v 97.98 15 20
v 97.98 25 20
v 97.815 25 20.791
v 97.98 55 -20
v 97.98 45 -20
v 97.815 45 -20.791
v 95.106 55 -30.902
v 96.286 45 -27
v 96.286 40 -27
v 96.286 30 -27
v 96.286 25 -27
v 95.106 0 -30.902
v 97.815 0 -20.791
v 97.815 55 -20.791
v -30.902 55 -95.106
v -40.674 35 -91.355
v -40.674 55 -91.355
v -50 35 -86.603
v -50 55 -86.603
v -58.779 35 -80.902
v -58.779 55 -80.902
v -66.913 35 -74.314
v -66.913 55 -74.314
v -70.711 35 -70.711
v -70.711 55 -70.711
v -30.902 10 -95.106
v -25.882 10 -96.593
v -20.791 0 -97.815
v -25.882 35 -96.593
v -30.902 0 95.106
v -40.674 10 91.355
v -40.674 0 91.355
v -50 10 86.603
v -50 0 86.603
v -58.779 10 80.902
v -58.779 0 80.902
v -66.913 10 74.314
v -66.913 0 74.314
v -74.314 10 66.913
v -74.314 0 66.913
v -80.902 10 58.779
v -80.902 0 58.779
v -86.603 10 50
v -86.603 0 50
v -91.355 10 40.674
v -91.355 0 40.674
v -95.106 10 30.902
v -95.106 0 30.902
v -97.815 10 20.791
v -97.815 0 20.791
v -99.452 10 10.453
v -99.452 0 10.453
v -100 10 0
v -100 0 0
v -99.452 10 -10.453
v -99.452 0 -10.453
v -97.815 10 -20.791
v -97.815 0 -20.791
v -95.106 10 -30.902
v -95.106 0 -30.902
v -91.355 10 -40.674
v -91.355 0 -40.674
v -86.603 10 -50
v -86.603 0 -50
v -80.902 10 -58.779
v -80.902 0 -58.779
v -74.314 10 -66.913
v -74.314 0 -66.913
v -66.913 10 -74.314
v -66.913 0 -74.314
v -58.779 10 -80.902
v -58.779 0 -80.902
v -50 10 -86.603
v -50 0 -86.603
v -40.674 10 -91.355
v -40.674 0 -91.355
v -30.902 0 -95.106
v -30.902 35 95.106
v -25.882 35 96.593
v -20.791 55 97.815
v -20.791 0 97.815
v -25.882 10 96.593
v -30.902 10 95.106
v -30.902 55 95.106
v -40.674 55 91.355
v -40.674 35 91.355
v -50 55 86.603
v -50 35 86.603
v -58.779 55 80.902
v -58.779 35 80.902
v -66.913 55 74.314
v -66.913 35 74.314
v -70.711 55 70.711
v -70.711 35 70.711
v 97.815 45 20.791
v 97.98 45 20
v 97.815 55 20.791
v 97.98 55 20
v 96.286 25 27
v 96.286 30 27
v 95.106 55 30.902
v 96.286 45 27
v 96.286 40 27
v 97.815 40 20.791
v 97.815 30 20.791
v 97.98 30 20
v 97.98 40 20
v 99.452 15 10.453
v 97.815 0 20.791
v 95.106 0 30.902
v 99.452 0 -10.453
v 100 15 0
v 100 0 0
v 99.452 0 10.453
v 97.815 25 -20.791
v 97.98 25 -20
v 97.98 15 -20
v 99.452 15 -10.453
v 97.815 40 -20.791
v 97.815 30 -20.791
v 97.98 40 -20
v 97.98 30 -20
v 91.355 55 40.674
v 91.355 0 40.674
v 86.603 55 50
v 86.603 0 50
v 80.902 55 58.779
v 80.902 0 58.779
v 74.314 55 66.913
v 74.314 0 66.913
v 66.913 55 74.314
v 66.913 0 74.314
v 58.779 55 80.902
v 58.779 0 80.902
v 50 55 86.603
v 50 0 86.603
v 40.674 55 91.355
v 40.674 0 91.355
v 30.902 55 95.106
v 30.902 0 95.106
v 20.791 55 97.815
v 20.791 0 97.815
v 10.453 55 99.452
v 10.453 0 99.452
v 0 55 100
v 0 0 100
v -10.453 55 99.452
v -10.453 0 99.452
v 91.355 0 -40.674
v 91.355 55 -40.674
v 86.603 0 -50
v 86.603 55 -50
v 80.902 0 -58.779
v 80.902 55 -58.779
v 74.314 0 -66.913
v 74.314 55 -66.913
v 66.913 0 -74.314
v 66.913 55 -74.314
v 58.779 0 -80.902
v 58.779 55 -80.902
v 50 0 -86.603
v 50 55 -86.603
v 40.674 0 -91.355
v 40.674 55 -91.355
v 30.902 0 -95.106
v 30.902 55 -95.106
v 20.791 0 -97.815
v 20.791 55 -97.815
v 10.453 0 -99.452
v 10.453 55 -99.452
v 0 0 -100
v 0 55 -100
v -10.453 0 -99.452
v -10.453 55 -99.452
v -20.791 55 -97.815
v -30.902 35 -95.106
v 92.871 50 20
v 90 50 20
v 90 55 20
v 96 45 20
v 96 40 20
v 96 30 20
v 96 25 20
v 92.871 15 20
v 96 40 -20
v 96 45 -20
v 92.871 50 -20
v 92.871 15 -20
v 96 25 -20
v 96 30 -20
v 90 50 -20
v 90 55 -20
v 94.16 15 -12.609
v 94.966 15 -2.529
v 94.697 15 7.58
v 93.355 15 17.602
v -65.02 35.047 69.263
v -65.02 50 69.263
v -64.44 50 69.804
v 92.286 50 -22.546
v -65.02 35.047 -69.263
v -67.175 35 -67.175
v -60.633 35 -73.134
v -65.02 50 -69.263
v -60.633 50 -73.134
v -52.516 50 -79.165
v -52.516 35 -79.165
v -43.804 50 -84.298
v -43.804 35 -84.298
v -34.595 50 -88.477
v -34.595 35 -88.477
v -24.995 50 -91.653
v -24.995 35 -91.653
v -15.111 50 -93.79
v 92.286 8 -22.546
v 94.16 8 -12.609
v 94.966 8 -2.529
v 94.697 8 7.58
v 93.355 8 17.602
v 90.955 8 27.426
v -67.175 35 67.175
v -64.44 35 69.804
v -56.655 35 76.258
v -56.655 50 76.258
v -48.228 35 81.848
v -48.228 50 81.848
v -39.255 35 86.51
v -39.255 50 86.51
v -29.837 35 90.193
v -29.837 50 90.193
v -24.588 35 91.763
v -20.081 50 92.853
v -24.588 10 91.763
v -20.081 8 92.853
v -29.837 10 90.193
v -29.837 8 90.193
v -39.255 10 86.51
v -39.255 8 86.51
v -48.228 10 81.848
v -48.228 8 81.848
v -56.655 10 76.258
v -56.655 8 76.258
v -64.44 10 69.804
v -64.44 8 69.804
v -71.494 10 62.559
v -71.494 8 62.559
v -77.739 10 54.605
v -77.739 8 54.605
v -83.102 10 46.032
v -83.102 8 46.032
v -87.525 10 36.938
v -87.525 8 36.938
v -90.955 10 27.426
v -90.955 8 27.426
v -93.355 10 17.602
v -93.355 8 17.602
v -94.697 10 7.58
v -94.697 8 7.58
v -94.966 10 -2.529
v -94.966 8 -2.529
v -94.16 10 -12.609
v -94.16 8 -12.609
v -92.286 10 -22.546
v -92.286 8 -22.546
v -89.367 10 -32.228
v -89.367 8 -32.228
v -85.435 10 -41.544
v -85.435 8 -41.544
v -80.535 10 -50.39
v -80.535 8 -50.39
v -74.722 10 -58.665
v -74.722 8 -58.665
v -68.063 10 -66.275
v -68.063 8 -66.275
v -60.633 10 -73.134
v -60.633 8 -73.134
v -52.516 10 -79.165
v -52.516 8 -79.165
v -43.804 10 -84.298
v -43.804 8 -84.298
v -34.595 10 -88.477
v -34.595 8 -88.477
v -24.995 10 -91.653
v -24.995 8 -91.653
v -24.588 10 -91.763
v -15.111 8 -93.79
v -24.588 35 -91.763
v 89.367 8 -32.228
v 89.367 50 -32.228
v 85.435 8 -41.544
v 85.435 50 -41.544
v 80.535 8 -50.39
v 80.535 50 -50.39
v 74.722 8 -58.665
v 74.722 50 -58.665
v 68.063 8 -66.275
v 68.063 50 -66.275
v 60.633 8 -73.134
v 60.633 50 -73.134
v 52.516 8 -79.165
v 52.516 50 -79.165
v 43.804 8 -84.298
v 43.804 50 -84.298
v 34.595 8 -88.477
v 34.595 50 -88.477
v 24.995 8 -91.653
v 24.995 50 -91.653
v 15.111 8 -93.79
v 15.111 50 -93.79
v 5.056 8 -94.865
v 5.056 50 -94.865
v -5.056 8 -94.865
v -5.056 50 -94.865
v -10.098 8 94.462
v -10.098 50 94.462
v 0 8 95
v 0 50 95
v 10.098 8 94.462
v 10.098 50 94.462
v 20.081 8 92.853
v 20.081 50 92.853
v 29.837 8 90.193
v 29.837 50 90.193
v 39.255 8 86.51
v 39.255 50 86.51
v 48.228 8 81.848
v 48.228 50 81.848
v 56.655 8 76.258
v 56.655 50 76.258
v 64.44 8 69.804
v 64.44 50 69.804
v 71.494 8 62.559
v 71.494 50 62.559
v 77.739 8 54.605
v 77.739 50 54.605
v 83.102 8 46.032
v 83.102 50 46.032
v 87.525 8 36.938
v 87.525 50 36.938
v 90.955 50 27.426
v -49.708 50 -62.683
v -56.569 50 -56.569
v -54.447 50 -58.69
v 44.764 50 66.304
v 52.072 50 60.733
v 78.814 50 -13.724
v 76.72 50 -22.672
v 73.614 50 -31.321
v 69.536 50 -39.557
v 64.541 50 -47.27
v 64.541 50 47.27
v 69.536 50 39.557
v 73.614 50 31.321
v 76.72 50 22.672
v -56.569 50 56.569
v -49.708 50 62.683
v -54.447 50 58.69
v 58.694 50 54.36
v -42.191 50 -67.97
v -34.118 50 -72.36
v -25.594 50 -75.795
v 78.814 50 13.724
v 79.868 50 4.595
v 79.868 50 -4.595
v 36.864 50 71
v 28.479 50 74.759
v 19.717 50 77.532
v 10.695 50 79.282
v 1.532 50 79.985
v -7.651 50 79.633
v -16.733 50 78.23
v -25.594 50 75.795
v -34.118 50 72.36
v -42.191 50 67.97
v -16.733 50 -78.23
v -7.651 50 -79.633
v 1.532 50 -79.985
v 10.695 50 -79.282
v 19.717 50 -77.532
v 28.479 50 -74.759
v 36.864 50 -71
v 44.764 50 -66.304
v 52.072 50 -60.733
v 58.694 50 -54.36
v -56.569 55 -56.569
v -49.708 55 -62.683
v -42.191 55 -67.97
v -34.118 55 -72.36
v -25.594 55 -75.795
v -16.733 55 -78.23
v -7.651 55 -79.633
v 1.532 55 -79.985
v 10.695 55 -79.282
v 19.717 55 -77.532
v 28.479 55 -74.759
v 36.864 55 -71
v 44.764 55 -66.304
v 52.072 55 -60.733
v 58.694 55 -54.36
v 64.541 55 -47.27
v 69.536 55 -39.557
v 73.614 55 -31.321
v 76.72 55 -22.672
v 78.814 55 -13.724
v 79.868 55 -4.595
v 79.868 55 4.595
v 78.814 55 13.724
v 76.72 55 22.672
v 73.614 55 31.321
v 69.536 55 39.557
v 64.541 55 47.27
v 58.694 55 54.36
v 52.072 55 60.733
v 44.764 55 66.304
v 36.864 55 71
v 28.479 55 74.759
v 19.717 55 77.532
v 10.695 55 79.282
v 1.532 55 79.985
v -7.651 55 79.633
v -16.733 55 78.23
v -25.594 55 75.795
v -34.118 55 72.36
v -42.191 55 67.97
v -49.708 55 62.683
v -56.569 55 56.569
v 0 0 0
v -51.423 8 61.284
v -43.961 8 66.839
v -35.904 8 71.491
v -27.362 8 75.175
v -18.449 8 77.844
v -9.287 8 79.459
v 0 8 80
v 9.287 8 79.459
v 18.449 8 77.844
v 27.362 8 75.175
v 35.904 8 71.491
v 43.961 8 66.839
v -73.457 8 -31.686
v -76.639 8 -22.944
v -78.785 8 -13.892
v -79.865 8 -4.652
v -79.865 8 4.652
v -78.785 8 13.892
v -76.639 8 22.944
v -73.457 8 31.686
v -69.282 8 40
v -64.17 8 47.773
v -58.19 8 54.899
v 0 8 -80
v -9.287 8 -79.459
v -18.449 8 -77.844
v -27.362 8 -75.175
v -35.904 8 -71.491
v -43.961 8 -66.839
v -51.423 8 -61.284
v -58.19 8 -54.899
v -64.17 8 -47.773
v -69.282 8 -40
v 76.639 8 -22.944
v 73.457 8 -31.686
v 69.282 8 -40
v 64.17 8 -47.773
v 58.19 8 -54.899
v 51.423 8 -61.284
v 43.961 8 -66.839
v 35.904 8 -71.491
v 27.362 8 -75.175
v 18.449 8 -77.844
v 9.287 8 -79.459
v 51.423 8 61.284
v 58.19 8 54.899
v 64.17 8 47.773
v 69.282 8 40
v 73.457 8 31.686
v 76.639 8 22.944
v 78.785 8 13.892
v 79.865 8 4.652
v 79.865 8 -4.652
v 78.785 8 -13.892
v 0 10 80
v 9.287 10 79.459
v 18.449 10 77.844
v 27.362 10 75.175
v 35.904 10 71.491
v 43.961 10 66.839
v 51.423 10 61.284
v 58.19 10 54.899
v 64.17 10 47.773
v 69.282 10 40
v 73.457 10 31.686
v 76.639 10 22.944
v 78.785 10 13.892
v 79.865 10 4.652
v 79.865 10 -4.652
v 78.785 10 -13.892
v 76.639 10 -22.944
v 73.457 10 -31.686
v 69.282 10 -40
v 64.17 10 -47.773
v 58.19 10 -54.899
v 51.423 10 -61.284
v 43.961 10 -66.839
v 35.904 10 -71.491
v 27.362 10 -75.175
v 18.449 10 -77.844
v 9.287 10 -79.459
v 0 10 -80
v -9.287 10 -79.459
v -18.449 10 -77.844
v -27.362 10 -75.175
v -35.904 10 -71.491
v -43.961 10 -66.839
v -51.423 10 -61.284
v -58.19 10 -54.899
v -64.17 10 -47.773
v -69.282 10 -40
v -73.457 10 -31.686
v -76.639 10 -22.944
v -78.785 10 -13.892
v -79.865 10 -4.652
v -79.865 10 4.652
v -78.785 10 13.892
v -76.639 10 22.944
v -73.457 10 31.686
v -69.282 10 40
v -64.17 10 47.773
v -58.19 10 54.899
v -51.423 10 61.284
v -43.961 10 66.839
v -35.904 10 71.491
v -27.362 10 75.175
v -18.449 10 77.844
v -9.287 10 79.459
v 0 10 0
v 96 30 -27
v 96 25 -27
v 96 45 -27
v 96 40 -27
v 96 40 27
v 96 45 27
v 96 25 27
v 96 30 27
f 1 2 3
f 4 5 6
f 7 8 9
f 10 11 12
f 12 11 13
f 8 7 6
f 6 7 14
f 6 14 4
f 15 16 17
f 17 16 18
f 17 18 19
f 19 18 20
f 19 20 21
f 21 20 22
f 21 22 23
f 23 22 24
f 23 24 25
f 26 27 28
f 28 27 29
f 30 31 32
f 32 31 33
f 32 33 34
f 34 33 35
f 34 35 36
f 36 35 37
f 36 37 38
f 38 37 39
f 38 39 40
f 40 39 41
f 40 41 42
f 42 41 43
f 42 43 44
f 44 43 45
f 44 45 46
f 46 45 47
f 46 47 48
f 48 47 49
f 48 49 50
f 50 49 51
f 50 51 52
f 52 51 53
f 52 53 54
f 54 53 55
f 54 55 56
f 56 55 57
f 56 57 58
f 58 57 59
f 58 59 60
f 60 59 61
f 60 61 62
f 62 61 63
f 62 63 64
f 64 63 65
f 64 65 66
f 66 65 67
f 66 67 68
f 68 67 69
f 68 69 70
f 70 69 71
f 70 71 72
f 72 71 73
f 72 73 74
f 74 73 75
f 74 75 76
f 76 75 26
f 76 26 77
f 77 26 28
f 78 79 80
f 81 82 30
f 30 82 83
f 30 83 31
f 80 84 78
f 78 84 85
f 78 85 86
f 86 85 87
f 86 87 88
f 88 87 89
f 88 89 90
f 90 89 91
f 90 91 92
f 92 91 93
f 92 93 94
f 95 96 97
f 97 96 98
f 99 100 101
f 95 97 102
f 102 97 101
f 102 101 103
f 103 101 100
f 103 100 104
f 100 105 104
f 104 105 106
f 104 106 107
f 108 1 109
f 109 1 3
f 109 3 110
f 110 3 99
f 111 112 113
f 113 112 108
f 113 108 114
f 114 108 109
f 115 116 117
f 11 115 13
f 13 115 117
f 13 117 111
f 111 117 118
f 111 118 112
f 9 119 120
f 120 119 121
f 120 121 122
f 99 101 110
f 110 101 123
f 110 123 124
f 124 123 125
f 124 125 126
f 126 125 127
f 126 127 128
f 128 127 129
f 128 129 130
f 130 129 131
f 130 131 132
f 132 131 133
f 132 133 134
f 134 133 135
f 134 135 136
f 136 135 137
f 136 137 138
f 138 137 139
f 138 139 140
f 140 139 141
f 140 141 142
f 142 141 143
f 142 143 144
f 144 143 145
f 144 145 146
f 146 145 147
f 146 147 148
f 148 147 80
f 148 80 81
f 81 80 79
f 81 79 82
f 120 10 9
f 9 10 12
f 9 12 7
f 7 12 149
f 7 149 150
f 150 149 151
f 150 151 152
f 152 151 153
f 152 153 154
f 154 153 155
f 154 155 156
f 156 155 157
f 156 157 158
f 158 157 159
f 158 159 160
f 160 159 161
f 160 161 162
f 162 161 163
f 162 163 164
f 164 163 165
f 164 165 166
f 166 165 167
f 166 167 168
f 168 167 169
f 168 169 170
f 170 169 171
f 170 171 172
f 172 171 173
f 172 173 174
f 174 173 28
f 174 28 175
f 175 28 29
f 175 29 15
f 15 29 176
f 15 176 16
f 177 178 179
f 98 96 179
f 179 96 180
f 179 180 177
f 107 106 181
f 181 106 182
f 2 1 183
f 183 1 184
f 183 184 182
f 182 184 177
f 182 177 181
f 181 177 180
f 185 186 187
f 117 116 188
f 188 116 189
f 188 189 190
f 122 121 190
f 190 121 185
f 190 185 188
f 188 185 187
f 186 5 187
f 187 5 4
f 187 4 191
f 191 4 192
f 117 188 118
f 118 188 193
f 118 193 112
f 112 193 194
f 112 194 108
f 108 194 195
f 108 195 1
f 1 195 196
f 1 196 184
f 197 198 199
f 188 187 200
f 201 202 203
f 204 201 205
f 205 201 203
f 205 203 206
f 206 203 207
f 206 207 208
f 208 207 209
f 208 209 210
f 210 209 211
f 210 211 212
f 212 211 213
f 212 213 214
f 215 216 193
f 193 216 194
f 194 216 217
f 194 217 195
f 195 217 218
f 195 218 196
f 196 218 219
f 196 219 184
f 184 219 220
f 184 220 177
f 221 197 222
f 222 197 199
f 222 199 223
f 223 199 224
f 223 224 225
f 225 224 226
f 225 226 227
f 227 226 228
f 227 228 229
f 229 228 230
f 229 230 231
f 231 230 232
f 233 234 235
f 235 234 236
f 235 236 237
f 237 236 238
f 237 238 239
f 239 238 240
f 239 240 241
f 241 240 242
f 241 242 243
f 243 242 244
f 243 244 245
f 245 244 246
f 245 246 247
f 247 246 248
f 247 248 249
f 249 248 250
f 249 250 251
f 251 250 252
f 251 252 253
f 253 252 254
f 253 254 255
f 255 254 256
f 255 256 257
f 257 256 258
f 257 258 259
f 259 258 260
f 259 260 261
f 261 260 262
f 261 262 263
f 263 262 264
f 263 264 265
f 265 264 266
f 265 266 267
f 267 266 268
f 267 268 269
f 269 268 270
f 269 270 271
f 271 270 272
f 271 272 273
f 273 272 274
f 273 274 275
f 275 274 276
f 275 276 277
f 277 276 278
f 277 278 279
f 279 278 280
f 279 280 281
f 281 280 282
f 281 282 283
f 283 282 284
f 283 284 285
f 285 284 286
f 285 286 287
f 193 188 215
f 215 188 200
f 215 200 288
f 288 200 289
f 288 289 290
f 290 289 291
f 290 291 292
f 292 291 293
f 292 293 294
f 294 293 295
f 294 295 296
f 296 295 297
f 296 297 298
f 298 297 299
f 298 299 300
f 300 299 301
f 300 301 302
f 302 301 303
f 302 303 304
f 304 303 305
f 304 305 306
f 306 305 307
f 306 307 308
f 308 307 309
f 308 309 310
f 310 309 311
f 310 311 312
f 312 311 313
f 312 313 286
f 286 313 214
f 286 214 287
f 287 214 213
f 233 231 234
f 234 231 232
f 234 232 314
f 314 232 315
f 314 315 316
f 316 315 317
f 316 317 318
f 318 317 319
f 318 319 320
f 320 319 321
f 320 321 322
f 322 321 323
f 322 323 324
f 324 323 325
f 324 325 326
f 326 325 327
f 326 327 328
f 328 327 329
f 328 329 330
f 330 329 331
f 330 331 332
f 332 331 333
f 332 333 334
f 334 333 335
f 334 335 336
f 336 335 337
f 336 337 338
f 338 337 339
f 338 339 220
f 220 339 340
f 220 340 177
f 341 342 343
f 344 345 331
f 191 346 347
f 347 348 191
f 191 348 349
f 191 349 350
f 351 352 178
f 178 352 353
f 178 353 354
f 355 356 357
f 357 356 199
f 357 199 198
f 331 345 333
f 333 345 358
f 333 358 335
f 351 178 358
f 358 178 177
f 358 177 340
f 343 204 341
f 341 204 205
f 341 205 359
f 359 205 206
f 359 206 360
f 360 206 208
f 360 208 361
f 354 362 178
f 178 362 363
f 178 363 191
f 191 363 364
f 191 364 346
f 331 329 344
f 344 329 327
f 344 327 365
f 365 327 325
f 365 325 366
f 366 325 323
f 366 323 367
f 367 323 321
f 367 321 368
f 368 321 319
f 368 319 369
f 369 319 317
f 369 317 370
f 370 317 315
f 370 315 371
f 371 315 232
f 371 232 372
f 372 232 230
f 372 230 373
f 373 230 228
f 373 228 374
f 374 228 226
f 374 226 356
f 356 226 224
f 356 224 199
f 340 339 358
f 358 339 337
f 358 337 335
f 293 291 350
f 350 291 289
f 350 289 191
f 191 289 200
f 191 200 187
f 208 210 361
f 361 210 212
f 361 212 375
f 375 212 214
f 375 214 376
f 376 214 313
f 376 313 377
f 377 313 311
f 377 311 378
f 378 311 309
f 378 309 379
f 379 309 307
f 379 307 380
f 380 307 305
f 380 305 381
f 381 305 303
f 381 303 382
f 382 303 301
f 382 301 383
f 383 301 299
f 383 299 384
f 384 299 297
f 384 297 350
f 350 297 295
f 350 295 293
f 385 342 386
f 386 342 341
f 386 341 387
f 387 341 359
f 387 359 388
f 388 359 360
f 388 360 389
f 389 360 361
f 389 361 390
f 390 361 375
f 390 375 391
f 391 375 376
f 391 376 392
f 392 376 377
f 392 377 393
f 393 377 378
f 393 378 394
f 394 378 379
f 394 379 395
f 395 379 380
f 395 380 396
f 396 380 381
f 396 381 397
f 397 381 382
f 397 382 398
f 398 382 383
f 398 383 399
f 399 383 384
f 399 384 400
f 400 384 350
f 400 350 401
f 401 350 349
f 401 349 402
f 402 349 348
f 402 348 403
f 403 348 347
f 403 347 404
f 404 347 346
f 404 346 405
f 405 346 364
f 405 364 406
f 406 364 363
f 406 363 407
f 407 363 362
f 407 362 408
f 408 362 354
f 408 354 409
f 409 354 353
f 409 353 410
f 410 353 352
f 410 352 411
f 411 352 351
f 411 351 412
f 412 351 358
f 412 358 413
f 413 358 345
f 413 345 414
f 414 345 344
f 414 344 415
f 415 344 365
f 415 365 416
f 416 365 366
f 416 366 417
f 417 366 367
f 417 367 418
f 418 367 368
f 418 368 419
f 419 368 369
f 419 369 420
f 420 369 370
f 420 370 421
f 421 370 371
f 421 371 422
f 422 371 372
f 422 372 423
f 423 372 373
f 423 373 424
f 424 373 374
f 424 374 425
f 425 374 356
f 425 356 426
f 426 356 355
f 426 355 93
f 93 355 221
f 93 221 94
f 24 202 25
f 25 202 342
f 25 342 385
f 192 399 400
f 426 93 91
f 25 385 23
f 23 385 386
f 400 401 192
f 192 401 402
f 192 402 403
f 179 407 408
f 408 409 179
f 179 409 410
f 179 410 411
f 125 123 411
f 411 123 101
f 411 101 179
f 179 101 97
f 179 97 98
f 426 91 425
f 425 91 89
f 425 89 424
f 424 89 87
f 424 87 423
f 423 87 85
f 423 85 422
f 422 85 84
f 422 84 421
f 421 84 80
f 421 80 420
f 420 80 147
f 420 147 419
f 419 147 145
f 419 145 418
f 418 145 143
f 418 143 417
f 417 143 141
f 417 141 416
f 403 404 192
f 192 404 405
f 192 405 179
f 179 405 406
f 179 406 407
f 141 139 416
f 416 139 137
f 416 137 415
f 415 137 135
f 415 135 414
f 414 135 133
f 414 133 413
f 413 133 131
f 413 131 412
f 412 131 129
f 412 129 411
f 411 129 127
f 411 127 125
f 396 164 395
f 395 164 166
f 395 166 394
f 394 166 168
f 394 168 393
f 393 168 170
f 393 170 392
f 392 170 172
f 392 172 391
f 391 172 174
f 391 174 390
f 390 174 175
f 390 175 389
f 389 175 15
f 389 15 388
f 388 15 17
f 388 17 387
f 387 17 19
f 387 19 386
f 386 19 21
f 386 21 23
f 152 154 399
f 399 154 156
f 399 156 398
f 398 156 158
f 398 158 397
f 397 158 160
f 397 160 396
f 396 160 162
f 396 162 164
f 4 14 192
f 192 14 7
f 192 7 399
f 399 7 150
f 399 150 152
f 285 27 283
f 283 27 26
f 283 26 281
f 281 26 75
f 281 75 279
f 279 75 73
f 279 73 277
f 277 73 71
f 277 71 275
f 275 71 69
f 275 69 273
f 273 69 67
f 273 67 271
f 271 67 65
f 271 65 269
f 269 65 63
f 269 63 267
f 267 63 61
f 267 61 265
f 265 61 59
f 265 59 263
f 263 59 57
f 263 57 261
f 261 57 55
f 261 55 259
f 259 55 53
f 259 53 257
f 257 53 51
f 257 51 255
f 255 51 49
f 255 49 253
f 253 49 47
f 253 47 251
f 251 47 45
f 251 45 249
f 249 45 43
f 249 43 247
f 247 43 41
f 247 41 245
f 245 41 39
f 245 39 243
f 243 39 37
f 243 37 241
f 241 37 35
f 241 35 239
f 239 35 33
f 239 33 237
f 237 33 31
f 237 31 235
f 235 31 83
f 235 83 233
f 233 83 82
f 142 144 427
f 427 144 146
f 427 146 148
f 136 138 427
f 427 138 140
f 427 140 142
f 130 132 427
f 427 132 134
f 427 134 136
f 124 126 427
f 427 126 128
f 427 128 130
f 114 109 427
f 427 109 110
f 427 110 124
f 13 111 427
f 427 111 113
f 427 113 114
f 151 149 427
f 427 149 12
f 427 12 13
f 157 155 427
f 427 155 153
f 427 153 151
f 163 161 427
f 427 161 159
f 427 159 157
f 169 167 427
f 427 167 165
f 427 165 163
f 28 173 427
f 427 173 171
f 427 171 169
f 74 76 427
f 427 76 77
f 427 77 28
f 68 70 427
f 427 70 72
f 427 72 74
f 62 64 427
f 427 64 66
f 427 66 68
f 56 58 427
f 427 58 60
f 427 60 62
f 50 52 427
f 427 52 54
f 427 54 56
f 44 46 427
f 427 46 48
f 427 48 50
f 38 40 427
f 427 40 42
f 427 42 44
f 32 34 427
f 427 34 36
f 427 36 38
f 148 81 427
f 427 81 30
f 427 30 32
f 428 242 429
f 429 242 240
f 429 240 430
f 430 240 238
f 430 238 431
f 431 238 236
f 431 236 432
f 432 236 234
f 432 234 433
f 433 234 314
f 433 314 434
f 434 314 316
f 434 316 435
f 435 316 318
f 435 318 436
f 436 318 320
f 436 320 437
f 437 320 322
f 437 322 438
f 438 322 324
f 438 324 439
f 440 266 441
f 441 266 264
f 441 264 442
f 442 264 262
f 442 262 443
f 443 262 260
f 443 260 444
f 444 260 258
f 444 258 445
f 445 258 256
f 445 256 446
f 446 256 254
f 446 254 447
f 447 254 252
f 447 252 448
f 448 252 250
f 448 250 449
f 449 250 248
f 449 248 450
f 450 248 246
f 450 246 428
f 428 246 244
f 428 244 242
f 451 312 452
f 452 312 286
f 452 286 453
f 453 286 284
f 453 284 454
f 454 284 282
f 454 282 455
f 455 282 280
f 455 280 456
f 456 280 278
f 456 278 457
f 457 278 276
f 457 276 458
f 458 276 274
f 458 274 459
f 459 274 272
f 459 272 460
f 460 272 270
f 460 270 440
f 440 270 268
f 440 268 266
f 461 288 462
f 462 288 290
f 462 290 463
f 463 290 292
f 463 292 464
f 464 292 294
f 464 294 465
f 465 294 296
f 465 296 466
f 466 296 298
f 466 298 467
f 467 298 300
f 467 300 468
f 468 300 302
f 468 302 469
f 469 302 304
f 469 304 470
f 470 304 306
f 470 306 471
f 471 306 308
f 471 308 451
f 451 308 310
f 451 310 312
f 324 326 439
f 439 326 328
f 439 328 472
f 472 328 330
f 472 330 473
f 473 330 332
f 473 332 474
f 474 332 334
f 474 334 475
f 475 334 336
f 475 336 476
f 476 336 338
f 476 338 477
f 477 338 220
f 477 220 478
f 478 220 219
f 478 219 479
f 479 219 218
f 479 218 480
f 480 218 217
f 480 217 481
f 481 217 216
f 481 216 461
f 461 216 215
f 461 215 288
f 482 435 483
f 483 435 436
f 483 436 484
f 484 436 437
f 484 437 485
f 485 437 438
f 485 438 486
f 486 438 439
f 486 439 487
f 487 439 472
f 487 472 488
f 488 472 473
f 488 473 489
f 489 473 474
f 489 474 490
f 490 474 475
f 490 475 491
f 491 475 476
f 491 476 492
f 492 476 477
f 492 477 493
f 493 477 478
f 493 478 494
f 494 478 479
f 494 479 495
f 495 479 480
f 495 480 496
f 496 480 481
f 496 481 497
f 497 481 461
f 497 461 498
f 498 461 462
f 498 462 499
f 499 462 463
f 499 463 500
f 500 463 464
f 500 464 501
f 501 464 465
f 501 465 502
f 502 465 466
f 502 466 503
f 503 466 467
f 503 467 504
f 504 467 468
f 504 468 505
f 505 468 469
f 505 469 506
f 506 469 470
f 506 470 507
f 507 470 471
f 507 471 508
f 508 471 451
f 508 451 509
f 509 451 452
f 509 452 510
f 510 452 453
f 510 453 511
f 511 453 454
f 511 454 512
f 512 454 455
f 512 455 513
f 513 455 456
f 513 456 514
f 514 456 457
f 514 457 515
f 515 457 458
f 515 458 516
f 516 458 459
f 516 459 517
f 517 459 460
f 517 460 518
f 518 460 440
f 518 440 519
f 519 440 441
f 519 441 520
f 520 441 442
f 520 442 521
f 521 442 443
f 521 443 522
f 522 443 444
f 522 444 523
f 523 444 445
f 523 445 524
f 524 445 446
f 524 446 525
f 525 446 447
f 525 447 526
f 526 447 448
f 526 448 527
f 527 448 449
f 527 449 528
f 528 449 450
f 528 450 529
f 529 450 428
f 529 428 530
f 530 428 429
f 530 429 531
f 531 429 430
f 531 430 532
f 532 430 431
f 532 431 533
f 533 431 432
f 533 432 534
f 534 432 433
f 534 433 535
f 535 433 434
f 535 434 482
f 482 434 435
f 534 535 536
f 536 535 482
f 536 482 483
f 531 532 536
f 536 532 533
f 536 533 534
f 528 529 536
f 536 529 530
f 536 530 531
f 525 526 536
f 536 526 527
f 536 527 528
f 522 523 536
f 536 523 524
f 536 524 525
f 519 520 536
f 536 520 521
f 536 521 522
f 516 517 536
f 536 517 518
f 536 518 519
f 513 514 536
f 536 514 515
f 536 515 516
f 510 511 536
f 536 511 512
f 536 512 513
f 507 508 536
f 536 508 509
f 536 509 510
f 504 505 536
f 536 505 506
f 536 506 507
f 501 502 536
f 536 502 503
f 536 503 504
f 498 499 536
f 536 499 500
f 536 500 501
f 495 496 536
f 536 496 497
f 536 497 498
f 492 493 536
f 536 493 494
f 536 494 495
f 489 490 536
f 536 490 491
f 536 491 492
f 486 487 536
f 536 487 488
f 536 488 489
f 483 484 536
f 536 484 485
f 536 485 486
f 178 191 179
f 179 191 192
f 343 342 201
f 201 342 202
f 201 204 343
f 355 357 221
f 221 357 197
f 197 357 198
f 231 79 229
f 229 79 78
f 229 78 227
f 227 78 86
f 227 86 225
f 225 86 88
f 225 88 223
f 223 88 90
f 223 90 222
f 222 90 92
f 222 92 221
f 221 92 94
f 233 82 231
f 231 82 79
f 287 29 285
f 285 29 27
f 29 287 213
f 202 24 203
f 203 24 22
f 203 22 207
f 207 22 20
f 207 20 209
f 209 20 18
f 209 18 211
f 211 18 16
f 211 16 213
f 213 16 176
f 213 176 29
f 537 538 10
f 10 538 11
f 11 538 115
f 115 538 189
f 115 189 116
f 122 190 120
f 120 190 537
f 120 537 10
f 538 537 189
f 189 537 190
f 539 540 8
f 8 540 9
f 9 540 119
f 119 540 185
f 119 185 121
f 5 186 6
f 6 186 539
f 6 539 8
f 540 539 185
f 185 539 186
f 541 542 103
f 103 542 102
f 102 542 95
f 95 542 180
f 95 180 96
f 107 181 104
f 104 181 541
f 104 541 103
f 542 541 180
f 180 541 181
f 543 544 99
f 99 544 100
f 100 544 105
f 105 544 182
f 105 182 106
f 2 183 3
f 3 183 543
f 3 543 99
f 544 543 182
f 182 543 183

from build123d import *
from build123d.topology import SkipClean

# Parameters (mm, degrees)
SKETCH1_R            = 100
BOSS_EXTRUDE1_DEPTH  = 10
SKETCH2_R            = 95
SKETCH2_R_2          = 80
CUT_EXTRUDE1_DEPTH   = 2
BOSS_EXTRUDE2_DEPTH  = 40
BOSS_EXTRUDE3_DEPTH  = 5
CUT_EXTRUDE2_START   = -5
SKETCH5_W            = 50
SKETCH5_H            = 40
CUT_EXTRUDE2_DEPTH   = 40
BOSS_EXTRUDE4_START  = -45
BOSS_EXTRUDE4_DEPTH  = 45
SKETCH8_W            = 40
SKETCH8_H            = 5
BOSS_EXTRUDE5_DEPTH  = 55
CUT_EXTRUDE3_START   = -10
SKETCH10_W           = 8.429508811
SKETCH10_H           = 40
CUT_EXTRUDE3_DEPTH   = 10
BOSS_EXTRUDE6_START  = 18.2
BOSS_EXTRUDE6_DEPTH  = 2
BOSS_EXTRUDE7_START  = 18.1
BOSS_EXTRUDE7_DEPTH  = 15
SKETCH13_W           = 20.653307815
SKETCH13_H           = 40
CUT_EXTRUDE4_DEPTH   = 5
BOSS_EXTRUDE8_DEPTH  = 17
BOSS_EXTRUDE9_DEPTH  = 3
BOSS_EXTRUDE10_DEPTH = 3
SKETCH18_W           = 11.98170237
SKETCH18_H           = 40
CUT_EXTRUDE5_DEPTH   = 5
CUT_EXTRUDE6_START   = -20
CUT_EXTRUDE6_DEPTH   = 25
CUT_EXTRUDE7_START   = -200
CUT_EXTRUDE7_DEPTH   = 200
CUT_EXTRUDE8_DEPTH   = 40
CUT_EXTRUDE9_START   = 6
SKETCH23_W           = 7
SKETCH23_H           = 5
CUT_EXTRUDE9_DEPTH   = 40


with BuildPart() as part:
    # Sketch1 → Boss-Extrude1 (new body)
    with BuildSketch(Plane(origin=(0, 0, 0), x_dir=(1, 0, 0), z_dir=(0, 1, 0))):
        with Locations(Location((0, 0, 0), (0, 0, 270))):
            Circle(SKETCH1_R)
    extrude(amount=BOSS_EXTRUDE1_DEPTH)

    # Sketch2 → Cut-Extrude1 (cut)
    with BuildSketch(Plane(origin=(0, 10, 0), x_dir=(1, 0, 0), z_dir=(0, 1, 0))):
        with Locations(Location((0, 0, 0), (0, 0, 270))):
            Circle(SKETCH2_R)
        with Locations(Location((0, 0, 0), (0, 0, 270))):
            Circle(SKETCH2_R_2, mode=Mode.SUBTRACT)
    extrude(amount=-CUT_EXTRUDE1_DEPTH, mode=Mode.SUBTRACT)

    # Sketch3 → Boss-Extrude2 (add)
    with SkipClean():  # the faces are left unmerged after this step: merging them gives an invalid solid
        with BuildSketch(Plane(origin=(0, 10, 0), x_dir=(1, 0, 0), z_dir=(0, 1, 0))):
            with BuildLine():
                Line((-67.175144213, 67.175144213), (-70.710678119, 70.710678119))
                ThreePointArc((-70.710678119, 70.710678119), (100, 0), (-70.710678119, -70.710678119))
                Line((-70.710678119, -70.710678119), (-67.175144213, -67.175144213))
                ThreePointArc((-67.175144213, -67.175144213), (95, 0), (-67.175144213, 67.175144213))
            make_face()
        extrude(amount=BOSS_EXTRUDE2_DEPTH)

    # Sketch5 → Cut-Extrude2 (cut)
    with SkipClean():  # the faces are left unmerged after this step: merging them gives an invalid solid
        with BuildSketch(Plane(origin=(0, 55, 0), x_dir=(1, 0, 0), z_dir=(0, 1, 0)).offset(CUT_EXTRUDE2_START)):
            with Locations((102.459666924, 0)):
                Rectangle(SKETCH5_W, SKETCH5_H)
        extrude(amount=-CUT_EXTRUDE2_DEPTH, mode=Mode.SUBTRACT)



with BuildPart() as body_2:
    # Sketch4 → Boss-Extrude3 (new body)
    with BuildSketch(Plane(origin=(0, 50, 0), x_dir=(1, 0, 0), z_dir=(0, 1, 0))):
        with BuildLine():
            ThreePointArc((-67.175144213, -67.175144213), (95, 0), (-67.175144213, 67.175144213))
            Line((-67.175144213, 67.175144213), (-56.568542495, 56.568542495))
            ThreePointArc((-56.568542495, 56.568542495), (30.614674589, 73.910362601), (80, 0))
            ThreePointArc((80, 0), (30.614674589, -73.910362601), (-56.568542495, -56.568542495))
            Line((-56.568542495, -56.568542495), (-67.175144213, -67.175144213))
        make_face()
        with BuildLine():
            Line((-70.710678119, 70.710678119), (-67.175144213, 67.175144213))
            ThreePointArc((-67.175144213, 67.175144213), (95, 0), (-67.175144213, -67.175144213))
            Line((-67.175144213, -67.175144213), (-70.710678119, -70.710678119))
            ThreePointArc((-70.710678119, -70.710678119), (100, 0), (-70.710678119, 70.710678119))
        make_face()
    extrude(amount=BOSS_EXTRUDE3_DEPTH)


with BuildPart() as part_1:
    with SkipClean():  # the faces are left unmerged after this step: merging them gives an invalid solid
        add(part.part)

        add(body_2.part)  # Boss-Extrude4 merges body 2
        # Sketch7 → Boss-Extrude4 (add)
        with BuildSketch(Plane(origin=(0, 55, 0), x_dir=(1, 0, 0), z_dir=(0, 1, 0)).offset(BOSS_EXTRUDE4_START)):
            with BuildLine():
                ThreePointArc((96.824583655, 25), (97.434164903, 22.507410108), (97.979589711, 20))
                Line((97.979589711, 20), (127.459666924, 20))
                Line((127.459666924, 20), (127.459666924, -20))
                Line((127.459666924, -20), (97.979589711, -20))
                ThreePointArc((97.979589711, -20), (97.434164903, -22.507410108), (96.824583655, -25))
                Line((96.824583655, -25), (132.459666924, -25))
                Line((132.459666924, -25), (132.459666924, 25))
                Line((132.459666924, 25), (96.824583655, 25))
            make_face()
        extrude(amount=BOSS_EXTRUDE4_DEPTH)

    # Sketch8 → Boss-Extrude5 (add)
    with SkipClean():  # the faces are left unmerged after this step: merging them gives an invalid solid
        with BuildSketch(Plane.ZY.offset(-127.459666924)):
            with Locations((0, 12.5)):
                Rectangle(SKETCH8_W, SKETCH8_H)
        extrude(amount=BOSS_EXTRUDE5_DEPTH)

    # Sketch10 → Cut-Extrude3 (cut)
    with SkipClean():  # the faces are left unmerged after this step: merging them gives an invalid solid
        with BuildSketch(Plane.XZ.offset(CUT_EXTRUDE3_START)):
            with Locations((88.6561237, 0)):
                Rectangle(SKETCH10_W, SKETCH10_H)
            with BuildLine():
                Line((92.870878105, -20), (92.870878105, 20))
                ThreePointArc((92.870878105, 20), (95, 0), (92.870878105, -20))
            make_face()
        extrude(amount=-CUT_EXTRUDE3_DEPTH, mode=Mode.SUBTRACT)

    # Sketch13 → Cut-Extrude4 (cut)
    with SkipClean():  # the faces are left unmerged after this step: merging them gives an invalid solid
        with BuildSketch(Plane(origin=(0, 55, 0), x_dir=(1, 0, 0), z_dir=(0, 1, 0))):
            with Locations((100.326653908, 0)):
                Rectangle(SKETCH13_W, SKETCH13_H)
        extrude(amount=-CUT_EXTRUDE4_DEPTH, mode=Mode.SUBTRACT)



with BuildPart() as body_2_2:
    # Sketch11 → Boss-Extrude6 (new body)
    with BuildSketch(Plane(origin=(0, 15, 0), x_dir=(1, 0, 0), z_dir=(0, 1, 0)).offset(BOSS_EXTRUDE6_START)):
        with BuildLine():
            Line((110.459666924, 8), (95.459666924, 8))
            Line((95.459666924, 8), (95.459666924, 3.5))
            Line((95.459666924, 3.5), (100.359666924, 3.5))
            ThreePointArc((100.359666924, 3.5), (103.859666924, 0), (100.359666924, -3.5))
            Line((100.359666924, -3.5), (95.459666924, -3.5))
            Line((95.459666924, -3.5), (95.459666924, -8))
            Line((95.459666924, -8), (110.459666924, -8))
            Line((110.459666924, -8), (110.459666924, 8))
        make_face()
    extrude(amount=BOSS_EXTRUDE6_DEPTH)

    # Sketch12 → Boss-Extrude7 (add)
    with BuildSketch(Plane(origin=(0, 15, 0), x_dir=(1, 0, 0), z_dir=(0, 1, 0)).offset(BOSS_EXTRUDE7_START)):
        Polygon((95.459666924, -10), (95.459666924, -8), (110.459666924, -8), (110.459666924, 8), (95.459666924, 8), (95.459666924, 10), (112.459666924, 10), (112.459666924, -10), align=None)
    extrude(amount=BOSS_EXTRUDE7_DEPTH)


with BuildPart() as part_2:
    with SkipClean():  # the faces are left unmerged after this step: merging them gives an invalid solid
        add(part_1.part)

        add(body_2_2.part)  # Boss-Extrude8 merges body 2 2
        # Sketch15 → Boss-Extrude8 (add)
        with BuildSketch(Plane(origin=(112.459666924, 0, 0), x_dir=(0, 0, -1), z_dir=(1, 0, 0))):
            Polygon((-8.249409199, 33.1), (-18.249409392, 15), (-20, 15), (-20, 15.967177607), (-10, 34.067177257), align=None)
            Polygon((10, 34.067177257), (20, 15.967177607), (20, 15), (18.249409392, 15), (8.249409199, 33.1), align=None)
        extrude(amount=-BOSS_EXTRUDE8_DEPTH)

    # Sketch16 → Boss-Extrude9 (add)
    with BuildSketch(Plane(origin=(0, 0, 0), x_dir=(0.7071067811865464, 0, 0.7071067811865487), z_dir=(-0.7071067811865487, 0, 0.7071067811865464))):
        Polygon((-80, 50), (-95, 35), (-95, 50), align=None)
    extrude(amount=-BOSS_EXTRUDE9_DEPTH)

    # Sketch17 → Boss-Extrude10 (add)
    with BuildSketch(Plane(origin=(0, 0, 0), x_dir=(-0.7071067811865475, 0, 0.7071067811865477), z_dir=(-0.7071067811865477, 0, -0.7071067811865475))):
        Polygon((80, 50), (95, 35), (95, 50), align=None)
    extrude(amount=-BOSS_EXTRUDE10_DEPTH)

    # Sketch18 → Cut-Extrude5 (cut)
    with BuildSketch(Plane(origin=(0, 15, 0), x_dir=(1, 0, 0), z_dir=(0, 1, 0))):
        with Locations((78.450518109, 0)):
            Rectangle(SKETCH18_W, SKETCH18_H)
    extrude(amount=-CUT_EXTRUDE5_DEPTH, mode=Mode.SUBTRACT)

    # Sketch20 → Cut-Extrude6 (cut)
    with BuildSketch(Plane(origin=(0, 55, 0), x_dir=(1, 0, 0), z_dir=(0, 1, 0)).offset(CUT_EXTRUDE6_START)):
        with BuildLine():
            Line((0, 0), (-31.757481462, 118.520534337))
            ThreePointArc((-31.757481462, 118.520534337), (-122.701486088, 0), (-31.757481462, -118.520534337))
            Line((-31.757481462, -118.520534337), (0, 0))
        make_face()
    extrude(amount=-CUT_EXTRUDE6_DEPTH, mode=Mode.SUBTRACT)

    # Sketch21 → Cut-Extrude7 (cut)
    with BuildSketch(Plane(origin=(0, 55, 0), x_dir=(1, 0, 0), z_dir=(0, 1, 0)).offset(CUT_EXTRUDE7_START)):
        with BuildLine():
            Line((96.824583655, 25), (132.459666924, 25))
            Line((132.459666924, 25), (132.459666924, -25))
            Line((132.459666924, -25), (96.824583655, -25))
            ThreePointArc((96.824583655, -25), (100, 0), (96.824583655, 25))
        make_face()
    extrude(amount=CUT_EXTRUDE7_DEPTH, mode=Mode.SUBTRACT)

    # Sketch22 → Cut-Extrude8 (cut)
    with BuildSketch(Plane(origin=(0, 55, 0), x_dir=(1, 0, 0), z_dir=(0, 1, 0))):
        Polygon((95.459666924, 20), (95.459666924, -20), (121.621169639, -20), (97.979589711, 20), align=None)
    extrude(amount=-CUT_EXTRUDE8_DEPTH, mode=Mode.SUBTRACT)

    # Sketch23 → Cut-Extrude9 (cut)
    with SkipClean():  # the faces are left unmerged after this step: merging them gives an invalid solid
        with BuildSketch(Plane(origin=(90, 0, 0), x_dir=(0, 0, -1), z_dir=(1, 0, 0)).offset(CUT_EXTRUDE9_START)):
            with Locations((-23.5, 42.5)):
                Rectangle(SKETCH23_W, SKETCH23_H)
            with Locations((-23.5, 27.5)):
                Rectangle(SKETCH23_W, SKETCH23_H)
            with Locations((23.5, 27.5)):
                Rectangle(SKETCH23_W, SKETCH23_H)
            with Locations((23.5, 42.5)):
                Rectangle(SKETCH23_W, SKETCH23_H)
        extrude(amount=CUT_EXTRUDE9_DEPTH, mode=Mode.SUBTRACT)


solid = part_2.part
